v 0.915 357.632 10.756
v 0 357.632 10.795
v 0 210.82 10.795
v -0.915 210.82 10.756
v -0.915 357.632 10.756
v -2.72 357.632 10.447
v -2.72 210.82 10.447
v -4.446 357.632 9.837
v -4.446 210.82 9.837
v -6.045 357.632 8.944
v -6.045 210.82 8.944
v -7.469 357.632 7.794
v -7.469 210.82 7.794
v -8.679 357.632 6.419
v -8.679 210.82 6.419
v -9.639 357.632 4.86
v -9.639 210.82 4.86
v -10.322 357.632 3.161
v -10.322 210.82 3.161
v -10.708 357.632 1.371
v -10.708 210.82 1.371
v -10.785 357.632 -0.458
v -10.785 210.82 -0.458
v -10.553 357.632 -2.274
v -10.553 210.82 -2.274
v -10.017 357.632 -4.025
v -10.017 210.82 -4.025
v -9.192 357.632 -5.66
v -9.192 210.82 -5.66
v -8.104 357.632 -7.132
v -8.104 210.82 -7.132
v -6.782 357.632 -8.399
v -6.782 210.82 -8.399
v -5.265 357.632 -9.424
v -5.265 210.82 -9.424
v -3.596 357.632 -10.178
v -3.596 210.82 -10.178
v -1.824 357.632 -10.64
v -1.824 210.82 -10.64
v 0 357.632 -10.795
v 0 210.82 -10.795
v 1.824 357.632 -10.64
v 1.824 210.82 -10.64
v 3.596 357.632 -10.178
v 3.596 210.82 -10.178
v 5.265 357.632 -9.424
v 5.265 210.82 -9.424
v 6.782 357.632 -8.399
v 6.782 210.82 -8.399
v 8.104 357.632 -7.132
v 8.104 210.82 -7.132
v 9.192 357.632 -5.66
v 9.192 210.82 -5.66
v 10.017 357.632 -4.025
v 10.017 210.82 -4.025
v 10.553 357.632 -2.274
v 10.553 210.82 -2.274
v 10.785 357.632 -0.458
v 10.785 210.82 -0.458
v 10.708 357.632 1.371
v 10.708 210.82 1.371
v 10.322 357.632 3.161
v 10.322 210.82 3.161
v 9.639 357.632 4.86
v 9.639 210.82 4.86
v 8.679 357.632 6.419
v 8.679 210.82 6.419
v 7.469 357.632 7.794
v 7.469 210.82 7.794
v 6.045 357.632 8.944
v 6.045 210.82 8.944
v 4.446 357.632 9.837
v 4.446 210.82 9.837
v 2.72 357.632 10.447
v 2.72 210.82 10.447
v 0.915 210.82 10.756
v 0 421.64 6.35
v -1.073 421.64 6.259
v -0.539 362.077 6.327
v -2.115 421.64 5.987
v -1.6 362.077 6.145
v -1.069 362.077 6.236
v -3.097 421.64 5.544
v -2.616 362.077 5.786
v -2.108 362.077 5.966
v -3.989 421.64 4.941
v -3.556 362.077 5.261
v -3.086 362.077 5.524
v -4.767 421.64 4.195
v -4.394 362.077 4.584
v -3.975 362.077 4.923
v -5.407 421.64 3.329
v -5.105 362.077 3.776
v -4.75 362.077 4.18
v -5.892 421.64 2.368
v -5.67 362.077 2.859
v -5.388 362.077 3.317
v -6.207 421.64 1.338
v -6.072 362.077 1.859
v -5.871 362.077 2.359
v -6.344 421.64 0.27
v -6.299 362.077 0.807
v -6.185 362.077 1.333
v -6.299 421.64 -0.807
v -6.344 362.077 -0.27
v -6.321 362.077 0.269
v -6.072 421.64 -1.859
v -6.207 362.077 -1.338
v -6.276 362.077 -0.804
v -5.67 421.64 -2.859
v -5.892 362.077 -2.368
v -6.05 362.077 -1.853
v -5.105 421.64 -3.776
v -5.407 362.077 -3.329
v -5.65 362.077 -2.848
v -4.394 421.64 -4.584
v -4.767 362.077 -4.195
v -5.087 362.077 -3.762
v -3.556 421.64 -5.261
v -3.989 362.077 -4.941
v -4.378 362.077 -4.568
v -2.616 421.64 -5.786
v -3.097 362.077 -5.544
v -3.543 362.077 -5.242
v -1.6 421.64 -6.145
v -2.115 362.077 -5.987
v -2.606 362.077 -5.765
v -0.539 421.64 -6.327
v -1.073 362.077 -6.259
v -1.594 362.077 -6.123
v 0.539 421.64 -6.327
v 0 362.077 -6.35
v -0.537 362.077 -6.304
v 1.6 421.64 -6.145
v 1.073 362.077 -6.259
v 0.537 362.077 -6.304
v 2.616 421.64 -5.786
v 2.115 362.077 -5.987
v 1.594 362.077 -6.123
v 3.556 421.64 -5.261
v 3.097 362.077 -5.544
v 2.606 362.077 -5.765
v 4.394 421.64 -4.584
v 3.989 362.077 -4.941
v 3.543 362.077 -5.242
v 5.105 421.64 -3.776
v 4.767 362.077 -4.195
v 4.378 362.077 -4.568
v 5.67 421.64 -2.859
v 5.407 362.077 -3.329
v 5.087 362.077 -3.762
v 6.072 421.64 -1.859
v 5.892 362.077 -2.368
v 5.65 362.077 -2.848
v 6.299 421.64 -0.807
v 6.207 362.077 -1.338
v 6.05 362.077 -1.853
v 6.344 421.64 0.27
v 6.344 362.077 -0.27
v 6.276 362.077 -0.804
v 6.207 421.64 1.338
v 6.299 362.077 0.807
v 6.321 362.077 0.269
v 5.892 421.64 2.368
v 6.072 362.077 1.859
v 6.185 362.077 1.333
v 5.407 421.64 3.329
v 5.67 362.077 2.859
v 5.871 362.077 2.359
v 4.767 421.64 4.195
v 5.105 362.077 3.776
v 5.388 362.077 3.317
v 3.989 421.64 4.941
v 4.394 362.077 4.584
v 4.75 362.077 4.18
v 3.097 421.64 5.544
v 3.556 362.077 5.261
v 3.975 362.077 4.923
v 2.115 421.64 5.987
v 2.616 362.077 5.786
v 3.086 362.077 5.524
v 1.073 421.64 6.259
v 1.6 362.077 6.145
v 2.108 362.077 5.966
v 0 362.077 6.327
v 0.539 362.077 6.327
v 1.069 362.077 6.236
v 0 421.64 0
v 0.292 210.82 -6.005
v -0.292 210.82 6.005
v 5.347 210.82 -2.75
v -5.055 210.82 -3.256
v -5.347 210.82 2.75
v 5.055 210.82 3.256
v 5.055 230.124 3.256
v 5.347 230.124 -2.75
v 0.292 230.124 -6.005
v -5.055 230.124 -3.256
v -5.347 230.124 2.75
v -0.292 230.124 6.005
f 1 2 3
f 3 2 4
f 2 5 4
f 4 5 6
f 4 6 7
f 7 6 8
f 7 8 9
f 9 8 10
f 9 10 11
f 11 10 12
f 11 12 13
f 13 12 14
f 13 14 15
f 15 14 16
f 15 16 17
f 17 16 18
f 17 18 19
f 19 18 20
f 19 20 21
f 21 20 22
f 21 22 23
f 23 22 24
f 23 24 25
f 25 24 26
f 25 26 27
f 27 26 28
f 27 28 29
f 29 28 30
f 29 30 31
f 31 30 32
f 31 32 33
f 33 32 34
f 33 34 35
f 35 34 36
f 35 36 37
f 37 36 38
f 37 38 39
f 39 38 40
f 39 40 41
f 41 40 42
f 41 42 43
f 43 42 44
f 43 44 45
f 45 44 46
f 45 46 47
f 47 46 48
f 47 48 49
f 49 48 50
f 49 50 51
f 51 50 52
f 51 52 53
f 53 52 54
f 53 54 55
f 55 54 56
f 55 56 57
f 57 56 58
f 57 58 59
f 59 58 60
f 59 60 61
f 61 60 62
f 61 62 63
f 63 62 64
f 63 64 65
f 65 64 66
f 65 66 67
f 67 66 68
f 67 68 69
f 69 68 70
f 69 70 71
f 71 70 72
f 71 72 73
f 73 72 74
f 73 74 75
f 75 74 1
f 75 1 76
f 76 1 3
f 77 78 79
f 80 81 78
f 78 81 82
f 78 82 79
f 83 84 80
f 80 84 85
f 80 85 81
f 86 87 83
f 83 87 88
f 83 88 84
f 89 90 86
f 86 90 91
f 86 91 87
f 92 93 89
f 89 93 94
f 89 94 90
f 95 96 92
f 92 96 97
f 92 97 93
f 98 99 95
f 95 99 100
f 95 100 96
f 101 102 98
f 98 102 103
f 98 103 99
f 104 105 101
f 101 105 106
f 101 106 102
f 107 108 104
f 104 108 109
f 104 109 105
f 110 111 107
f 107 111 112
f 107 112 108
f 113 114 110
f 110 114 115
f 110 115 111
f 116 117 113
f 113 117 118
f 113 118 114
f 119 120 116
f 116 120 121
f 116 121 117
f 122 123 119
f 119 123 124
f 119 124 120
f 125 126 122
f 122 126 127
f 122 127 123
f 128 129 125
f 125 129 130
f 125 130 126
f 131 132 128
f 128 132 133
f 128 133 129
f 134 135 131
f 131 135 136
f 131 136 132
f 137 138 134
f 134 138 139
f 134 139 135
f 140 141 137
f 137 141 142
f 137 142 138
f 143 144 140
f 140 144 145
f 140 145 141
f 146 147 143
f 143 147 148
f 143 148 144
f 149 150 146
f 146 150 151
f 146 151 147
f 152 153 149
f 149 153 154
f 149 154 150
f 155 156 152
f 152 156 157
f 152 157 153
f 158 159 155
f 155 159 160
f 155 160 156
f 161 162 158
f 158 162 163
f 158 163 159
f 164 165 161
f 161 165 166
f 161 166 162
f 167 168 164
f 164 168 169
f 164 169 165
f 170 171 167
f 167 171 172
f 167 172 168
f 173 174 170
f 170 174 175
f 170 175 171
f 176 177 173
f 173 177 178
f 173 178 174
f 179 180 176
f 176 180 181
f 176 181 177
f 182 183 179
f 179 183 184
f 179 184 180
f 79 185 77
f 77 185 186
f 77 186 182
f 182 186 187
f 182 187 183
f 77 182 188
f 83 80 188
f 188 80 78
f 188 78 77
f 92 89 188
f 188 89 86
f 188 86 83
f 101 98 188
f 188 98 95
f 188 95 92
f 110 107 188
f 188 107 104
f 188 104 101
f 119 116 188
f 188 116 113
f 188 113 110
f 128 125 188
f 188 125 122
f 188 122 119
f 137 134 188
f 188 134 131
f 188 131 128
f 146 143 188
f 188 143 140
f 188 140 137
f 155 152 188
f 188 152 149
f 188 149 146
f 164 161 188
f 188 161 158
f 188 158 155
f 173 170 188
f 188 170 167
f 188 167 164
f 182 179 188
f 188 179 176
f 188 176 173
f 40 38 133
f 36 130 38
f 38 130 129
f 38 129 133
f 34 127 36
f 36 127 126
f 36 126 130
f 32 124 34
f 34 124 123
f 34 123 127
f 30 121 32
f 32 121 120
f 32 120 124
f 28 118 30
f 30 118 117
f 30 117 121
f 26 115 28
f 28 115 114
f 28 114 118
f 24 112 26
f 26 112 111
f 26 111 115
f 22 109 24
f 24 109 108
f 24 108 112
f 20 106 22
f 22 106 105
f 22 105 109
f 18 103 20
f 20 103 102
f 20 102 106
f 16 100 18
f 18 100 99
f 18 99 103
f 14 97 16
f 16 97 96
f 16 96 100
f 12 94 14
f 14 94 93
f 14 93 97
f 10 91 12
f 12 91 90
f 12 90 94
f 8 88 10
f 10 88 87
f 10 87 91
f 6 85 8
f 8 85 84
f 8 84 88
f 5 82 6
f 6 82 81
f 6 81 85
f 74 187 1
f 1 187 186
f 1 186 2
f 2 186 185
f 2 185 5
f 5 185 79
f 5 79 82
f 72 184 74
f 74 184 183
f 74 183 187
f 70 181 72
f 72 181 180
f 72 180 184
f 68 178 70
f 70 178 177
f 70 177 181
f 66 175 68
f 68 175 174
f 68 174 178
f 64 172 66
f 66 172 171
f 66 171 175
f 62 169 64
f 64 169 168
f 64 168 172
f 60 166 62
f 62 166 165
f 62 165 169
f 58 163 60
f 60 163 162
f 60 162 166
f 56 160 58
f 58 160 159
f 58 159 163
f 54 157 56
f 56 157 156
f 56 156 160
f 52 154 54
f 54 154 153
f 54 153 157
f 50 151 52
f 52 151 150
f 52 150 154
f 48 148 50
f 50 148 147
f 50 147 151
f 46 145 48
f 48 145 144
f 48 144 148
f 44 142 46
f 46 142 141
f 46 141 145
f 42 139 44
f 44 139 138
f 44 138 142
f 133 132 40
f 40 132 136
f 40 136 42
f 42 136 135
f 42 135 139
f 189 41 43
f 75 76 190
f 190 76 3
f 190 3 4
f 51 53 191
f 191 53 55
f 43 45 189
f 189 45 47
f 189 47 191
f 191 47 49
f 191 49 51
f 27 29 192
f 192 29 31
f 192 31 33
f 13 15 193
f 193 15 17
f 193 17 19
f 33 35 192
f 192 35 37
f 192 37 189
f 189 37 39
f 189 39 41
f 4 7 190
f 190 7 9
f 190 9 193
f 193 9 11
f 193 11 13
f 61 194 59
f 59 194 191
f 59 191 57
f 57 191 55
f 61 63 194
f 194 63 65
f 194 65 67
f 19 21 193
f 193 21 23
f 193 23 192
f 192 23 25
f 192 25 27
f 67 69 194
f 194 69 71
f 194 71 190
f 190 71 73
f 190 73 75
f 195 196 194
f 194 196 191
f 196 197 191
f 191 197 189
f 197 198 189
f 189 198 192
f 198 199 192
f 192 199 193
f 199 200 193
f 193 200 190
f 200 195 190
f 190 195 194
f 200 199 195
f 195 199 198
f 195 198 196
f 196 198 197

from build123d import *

# Parameters (mm, degrees)
SKETCH1_R           = 6.35
BOSS_EXTRUDE1_DEPTH = 421.64
SKETCH2_R           = 10.795
BOSS_EXTRUDE2_DEPTH = 421.64
SKETCH3_R           = 25.4
SKETCH3_R_2         = 6.35
CUT_EXTRUDE1_DEPTH  = 52.324
CUT_EXTRUDE2_START  = -57.658
SKETCH4_R           = 25.4
SKETCH4_R_2         = 6.35
CUT_EXTRUDE2_DEPTH  = 57.658
CHAMFER1_SIZE       = 6.35
SKETCH5_R           = 15.875
CUT_EXTRUDE3_DEPTH  = 212.372033273
CUT_EXTRUDE4_DEPTH  = 19.304


with BuildPart() as part:
    # Sketch1 → Boss-Extrude1 (new body)
    with BuildSketch(Plane(origin=(0, 0, 0), x_dir=(1, 0, 0), z_dir=(0, 1, 0))):
        with Locations(Location((0, 0, 0), (0, 0, 270))):
            Circle(SKETCH1_R)
    extrude(amount=BOSS_EXTRUDE1_DEPTH)

    # Sketch2 → Boss-Extrude2 (add)
    with BuildSketch(Plane(origin=(0, 0, 0), x_dir=(-1, 0, 0), z_dir=(0, -1, 0))):
        with Locations(Location((0, 0, 0), (0, 0, 90))):
            Circle(SKETCH2_R)
    extrude(amount=-BOSS_EXTRUDE2_DEPTH)

    # Sketch3 → Cut-Extrude1 (cut)
    with BuildSketch(Plane.XZ):
        Circle(SKETCH3_R)
        with Locations(Location((0, 0, 0), (0, 0, 270))):
            Circle(SKETCH3_R_2, mode=Mode.SUBTRACT)
    extrude(amount=-CUT_EXTRUDE1_DEPTH, mode=Mode.SUBTRACT)

    # Sketch4 → Cut-Extrude2 (cut)
    with BuildSketch(Plane(origin=(0, 421.64, 0), x_dir=(1, 0, 0), z_dir=(0, 1, 0)).offset(CUT_EXTRUDE2_START)):
        Circle(SKETCH4_R)
        with Locations(Location((0, 0, 0), (0, 0, 90))):
            Circle(SKETCH4_R_2, mode=Mode.SUBTRACT)
    extrude(amount=CUT_EXTRUDE2_DEPTH, mode=Mode.SUBTRACT)

    # Chamfer1
    # the kernel refuses this chamfer: 6.35 mm, written as the material it takes off along each edge
    with BuildSketch(Plane(origin=(0, 52.324, 0), x_dir=(0, 0, -1), z_dir=(-1, 0, 0))) as chamfer1_piece_1_section:
        Polygon((10.795, -CHAMFER1_SIZE), (10.795 - CHAMFER1_SIZE, 0), (10.795, 0), align=None)
    chamfer1_piece_1 = revolve(axis=Axis((0, 52.324, 0), (0, -1, 0)), mode=Mode.PRIVATE)
    chamfer1_piece_1 = chamfer1_piece_1 - Plane(origin=(0, 56.4676015, 0), x_dir=(0, 0, -1), z_dir=(0, -1, 0)) * Cylinder(6.35, 44, mode=Mode.PRIVATE)
    add(chamfer1_piece_1, mode=Mode.SUBTRACT)
    with BuildSketch(Plane(origin=(0, 363.982, 0), x_dir=(0, 0, -1), z_dir=(-1, 0, 0))) as chamfer1_piece_2_section:
        Polygon((10.795, CHAMFER1_SIZE), (10.795 - CHAMFER1_SIZE, 0), (10.795, 0), align=None)
    chamfer1_piece_2 = revolve(axis=Axis((0, 363.982, 0), (0, -1, 0)), mode=Mode.PRIVATE)
    chamfer1_piece_2 = chamfer1_piece_2 - Plane(origin=(0, 359.8383985, 0), x_dir=(0, 0, -1), z_dir=(0, -1, 0)) * Cylinder(6.35, 44, mode=Mode.PRIVATE)
    add(chamfer1_piece_2, mode=Mode.SUBTRACT)

    # Sketch5 → Cut-Extrude3 (cut, through all)
    with BuildSketch(Plane(origin=(0, 210.82, 0), x_dir=(1, 0, 0), z_dir=(0, 1, 0))):
        Circle(SKETCH5_R)
    extrude(amount=-CUT_EXTRUDE3_DEPTH, mode=Mode.SUBTRACT)

    # Sketch6 → Cut-Extrude4 (cut)
    with BuildSketch(Plane(origin=(0, 210.82, 0), x_dir=(-1, 0, 0), z_dir=(0, -1, 0))):
        Polygon((-5.054761839, -3.255740788), (0.292173311, -6.005422557), (5.346935151, -2.749681769), (5.054761839, 3.255740788), (-0.292173311, 6.005422557), (-5.346935151, 2.749681769), align=None)
    extrude(amount=-CUT_EXTRUDE4_DEPTH, mode=Mode.SUBTRACT)


solid = part.part
